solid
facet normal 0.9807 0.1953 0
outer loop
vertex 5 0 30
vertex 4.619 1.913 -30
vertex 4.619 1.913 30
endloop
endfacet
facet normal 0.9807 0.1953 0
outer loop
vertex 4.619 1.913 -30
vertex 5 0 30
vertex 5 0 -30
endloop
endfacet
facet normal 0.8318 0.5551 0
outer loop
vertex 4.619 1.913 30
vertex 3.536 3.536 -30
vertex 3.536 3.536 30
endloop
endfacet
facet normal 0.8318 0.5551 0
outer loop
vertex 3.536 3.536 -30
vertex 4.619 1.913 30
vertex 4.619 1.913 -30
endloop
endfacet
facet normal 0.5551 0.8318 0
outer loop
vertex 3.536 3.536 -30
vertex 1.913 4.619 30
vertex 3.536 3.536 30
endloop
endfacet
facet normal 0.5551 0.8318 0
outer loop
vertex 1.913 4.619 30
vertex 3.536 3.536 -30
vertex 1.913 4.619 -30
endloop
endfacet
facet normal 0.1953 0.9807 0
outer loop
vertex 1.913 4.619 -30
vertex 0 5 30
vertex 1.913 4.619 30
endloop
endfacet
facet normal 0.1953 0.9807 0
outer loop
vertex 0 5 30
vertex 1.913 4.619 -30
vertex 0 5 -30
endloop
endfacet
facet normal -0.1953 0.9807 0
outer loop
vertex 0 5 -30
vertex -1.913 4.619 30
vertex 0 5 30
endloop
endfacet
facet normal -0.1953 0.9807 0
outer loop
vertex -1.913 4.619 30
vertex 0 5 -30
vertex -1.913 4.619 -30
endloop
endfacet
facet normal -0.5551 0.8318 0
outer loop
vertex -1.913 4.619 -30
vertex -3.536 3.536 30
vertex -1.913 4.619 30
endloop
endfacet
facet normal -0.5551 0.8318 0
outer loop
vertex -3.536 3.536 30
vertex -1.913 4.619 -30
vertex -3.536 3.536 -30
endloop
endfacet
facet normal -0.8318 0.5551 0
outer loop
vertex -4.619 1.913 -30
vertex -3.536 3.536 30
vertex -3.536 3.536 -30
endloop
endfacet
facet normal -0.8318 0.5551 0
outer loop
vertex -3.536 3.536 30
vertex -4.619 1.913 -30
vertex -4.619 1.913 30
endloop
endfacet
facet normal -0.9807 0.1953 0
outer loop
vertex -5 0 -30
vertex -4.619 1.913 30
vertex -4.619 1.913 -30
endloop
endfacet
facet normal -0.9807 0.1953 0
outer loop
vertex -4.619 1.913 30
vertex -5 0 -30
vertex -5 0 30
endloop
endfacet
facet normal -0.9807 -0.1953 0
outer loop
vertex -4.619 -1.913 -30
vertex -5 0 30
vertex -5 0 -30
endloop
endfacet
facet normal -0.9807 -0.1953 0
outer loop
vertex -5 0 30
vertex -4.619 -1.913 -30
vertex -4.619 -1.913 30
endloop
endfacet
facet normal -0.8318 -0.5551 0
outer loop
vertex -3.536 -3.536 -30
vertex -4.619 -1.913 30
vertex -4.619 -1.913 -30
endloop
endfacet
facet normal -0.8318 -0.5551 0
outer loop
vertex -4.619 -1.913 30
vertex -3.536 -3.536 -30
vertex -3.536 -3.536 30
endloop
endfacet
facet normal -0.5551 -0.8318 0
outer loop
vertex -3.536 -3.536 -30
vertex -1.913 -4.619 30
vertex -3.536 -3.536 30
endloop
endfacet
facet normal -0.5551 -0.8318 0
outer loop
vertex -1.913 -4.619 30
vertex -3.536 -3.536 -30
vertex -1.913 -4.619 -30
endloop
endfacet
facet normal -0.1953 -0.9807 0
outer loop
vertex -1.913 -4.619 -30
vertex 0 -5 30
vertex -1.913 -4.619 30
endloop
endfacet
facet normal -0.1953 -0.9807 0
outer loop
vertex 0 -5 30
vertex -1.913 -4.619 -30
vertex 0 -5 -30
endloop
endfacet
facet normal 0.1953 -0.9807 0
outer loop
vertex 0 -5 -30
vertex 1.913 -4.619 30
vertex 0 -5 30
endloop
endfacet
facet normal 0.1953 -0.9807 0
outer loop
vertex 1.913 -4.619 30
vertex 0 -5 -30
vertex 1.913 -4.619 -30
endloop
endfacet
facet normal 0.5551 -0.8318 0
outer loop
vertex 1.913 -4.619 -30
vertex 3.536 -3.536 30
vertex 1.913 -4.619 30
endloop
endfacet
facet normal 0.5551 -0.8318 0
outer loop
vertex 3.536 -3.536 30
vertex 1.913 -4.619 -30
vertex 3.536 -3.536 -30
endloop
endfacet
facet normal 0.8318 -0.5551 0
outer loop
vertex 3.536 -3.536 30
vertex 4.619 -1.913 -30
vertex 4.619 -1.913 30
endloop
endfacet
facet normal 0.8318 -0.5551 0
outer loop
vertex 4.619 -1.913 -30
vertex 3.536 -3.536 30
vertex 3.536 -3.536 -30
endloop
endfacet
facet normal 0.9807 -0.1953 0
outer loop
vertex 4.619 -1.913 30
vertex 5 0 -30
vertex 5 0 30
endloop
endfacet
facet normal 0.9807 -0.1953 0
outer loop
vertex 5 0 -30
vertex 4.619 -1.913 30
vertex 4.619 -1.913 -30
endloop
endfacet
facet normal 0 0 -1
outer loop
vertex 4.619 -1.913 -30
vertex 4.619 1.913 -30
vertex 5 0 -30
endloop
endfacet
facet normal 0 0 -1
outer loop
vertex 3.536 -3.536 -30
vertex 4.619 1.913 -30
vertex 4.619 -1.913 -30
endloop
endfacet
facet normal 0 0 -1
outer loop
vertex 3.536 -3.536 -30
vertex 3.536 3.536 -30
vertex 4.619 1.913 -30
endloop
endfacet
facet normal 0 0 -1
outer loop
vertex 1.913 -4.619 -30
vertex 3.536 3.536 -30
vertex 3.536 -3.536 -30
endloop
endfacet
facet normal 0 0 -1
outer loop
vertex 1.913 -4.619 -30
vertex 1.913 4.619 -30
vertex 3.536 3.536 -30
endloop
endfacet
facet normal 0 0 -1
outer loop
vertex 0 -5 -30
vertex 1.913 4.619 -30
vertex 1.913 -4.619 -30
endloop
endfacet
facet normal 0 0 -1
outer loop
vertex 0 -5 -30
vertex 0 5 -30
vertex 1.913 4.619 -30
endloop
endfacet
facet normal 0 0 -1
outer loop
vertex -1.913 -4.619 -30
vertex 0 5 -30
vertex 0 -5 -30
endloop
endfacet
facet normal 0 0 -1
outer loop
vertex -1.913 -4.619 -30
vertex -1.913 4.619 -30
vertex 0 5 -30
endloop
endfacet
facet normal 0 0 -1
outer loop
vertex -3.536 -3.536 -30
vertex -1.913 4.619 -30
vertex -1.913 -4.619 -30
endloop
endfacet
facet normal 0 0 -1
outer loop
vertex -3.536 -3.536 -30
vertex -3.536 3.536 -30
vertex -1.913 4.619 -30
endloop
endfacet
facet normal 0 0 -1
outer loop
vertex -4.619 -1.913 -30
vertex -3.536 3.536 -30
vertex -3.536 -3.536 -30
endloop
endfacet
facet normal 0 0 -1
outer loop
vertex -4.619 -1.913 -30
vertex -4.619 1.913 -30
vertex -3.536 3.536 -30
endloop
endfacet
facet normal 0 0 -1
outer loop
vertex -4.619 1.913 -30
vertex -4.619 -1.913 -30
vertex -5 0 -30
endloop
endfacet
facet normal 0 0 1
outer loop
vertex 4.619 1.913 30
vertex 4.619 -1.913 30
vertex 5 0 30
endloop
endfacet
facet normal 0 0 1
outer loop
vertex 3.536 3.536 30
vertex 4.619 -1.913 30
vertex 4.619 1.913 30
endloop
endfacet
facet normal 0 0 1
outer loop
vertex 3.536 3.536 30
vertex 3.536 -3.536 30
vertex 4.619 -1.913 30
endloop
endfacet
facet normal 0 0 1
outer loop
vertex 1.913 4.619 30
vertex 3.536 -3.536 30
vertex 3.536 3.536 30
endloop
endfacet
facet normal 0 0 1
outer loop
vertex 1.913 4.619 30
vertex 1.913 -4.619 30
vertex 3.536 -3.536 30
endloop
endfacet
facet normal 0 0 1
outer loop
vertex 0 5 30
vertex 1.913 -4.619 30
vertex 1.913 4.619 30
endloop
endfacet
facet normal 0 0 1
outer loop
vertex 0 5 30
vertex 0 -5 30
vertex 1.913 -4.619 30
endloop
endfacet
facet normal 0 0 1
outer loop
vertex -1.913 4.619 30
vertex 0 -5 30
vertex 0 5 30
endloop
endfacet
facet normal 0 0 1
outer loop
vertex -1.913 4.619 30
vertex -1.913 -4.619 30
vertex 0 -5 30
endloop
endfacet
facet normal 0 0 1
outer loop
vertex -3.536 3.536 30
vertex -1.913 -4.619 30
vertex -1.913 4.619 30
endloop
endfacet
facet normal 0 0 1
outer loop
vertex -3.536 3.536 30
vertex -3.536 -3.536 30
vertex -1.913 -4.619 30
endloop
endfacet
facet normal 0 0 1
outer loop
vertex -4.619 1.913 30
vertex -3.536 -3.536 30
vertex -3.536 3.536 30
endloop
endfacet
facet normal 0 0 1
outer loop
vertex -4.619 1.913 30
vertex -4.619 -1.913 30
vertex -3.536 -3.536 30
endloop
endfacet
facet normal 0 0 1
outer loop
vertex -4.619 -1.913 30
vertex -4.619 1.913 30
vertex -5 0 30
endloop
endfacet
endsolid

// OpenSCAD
// Parameters for the central shaft
shaft_diameter = 10; // Diameter of the central shaft
shaft_length = 60;   // Length of the central shaft (elongated to match the original model)

// Central Shaft
module central_shaft() {
    // Removed tapering to ensure a consistent cylindrical shape
    cylinder(d = shaft_diameter, h = shaft_length, center = true);
}

// Render the central shaft
central_shaft();
